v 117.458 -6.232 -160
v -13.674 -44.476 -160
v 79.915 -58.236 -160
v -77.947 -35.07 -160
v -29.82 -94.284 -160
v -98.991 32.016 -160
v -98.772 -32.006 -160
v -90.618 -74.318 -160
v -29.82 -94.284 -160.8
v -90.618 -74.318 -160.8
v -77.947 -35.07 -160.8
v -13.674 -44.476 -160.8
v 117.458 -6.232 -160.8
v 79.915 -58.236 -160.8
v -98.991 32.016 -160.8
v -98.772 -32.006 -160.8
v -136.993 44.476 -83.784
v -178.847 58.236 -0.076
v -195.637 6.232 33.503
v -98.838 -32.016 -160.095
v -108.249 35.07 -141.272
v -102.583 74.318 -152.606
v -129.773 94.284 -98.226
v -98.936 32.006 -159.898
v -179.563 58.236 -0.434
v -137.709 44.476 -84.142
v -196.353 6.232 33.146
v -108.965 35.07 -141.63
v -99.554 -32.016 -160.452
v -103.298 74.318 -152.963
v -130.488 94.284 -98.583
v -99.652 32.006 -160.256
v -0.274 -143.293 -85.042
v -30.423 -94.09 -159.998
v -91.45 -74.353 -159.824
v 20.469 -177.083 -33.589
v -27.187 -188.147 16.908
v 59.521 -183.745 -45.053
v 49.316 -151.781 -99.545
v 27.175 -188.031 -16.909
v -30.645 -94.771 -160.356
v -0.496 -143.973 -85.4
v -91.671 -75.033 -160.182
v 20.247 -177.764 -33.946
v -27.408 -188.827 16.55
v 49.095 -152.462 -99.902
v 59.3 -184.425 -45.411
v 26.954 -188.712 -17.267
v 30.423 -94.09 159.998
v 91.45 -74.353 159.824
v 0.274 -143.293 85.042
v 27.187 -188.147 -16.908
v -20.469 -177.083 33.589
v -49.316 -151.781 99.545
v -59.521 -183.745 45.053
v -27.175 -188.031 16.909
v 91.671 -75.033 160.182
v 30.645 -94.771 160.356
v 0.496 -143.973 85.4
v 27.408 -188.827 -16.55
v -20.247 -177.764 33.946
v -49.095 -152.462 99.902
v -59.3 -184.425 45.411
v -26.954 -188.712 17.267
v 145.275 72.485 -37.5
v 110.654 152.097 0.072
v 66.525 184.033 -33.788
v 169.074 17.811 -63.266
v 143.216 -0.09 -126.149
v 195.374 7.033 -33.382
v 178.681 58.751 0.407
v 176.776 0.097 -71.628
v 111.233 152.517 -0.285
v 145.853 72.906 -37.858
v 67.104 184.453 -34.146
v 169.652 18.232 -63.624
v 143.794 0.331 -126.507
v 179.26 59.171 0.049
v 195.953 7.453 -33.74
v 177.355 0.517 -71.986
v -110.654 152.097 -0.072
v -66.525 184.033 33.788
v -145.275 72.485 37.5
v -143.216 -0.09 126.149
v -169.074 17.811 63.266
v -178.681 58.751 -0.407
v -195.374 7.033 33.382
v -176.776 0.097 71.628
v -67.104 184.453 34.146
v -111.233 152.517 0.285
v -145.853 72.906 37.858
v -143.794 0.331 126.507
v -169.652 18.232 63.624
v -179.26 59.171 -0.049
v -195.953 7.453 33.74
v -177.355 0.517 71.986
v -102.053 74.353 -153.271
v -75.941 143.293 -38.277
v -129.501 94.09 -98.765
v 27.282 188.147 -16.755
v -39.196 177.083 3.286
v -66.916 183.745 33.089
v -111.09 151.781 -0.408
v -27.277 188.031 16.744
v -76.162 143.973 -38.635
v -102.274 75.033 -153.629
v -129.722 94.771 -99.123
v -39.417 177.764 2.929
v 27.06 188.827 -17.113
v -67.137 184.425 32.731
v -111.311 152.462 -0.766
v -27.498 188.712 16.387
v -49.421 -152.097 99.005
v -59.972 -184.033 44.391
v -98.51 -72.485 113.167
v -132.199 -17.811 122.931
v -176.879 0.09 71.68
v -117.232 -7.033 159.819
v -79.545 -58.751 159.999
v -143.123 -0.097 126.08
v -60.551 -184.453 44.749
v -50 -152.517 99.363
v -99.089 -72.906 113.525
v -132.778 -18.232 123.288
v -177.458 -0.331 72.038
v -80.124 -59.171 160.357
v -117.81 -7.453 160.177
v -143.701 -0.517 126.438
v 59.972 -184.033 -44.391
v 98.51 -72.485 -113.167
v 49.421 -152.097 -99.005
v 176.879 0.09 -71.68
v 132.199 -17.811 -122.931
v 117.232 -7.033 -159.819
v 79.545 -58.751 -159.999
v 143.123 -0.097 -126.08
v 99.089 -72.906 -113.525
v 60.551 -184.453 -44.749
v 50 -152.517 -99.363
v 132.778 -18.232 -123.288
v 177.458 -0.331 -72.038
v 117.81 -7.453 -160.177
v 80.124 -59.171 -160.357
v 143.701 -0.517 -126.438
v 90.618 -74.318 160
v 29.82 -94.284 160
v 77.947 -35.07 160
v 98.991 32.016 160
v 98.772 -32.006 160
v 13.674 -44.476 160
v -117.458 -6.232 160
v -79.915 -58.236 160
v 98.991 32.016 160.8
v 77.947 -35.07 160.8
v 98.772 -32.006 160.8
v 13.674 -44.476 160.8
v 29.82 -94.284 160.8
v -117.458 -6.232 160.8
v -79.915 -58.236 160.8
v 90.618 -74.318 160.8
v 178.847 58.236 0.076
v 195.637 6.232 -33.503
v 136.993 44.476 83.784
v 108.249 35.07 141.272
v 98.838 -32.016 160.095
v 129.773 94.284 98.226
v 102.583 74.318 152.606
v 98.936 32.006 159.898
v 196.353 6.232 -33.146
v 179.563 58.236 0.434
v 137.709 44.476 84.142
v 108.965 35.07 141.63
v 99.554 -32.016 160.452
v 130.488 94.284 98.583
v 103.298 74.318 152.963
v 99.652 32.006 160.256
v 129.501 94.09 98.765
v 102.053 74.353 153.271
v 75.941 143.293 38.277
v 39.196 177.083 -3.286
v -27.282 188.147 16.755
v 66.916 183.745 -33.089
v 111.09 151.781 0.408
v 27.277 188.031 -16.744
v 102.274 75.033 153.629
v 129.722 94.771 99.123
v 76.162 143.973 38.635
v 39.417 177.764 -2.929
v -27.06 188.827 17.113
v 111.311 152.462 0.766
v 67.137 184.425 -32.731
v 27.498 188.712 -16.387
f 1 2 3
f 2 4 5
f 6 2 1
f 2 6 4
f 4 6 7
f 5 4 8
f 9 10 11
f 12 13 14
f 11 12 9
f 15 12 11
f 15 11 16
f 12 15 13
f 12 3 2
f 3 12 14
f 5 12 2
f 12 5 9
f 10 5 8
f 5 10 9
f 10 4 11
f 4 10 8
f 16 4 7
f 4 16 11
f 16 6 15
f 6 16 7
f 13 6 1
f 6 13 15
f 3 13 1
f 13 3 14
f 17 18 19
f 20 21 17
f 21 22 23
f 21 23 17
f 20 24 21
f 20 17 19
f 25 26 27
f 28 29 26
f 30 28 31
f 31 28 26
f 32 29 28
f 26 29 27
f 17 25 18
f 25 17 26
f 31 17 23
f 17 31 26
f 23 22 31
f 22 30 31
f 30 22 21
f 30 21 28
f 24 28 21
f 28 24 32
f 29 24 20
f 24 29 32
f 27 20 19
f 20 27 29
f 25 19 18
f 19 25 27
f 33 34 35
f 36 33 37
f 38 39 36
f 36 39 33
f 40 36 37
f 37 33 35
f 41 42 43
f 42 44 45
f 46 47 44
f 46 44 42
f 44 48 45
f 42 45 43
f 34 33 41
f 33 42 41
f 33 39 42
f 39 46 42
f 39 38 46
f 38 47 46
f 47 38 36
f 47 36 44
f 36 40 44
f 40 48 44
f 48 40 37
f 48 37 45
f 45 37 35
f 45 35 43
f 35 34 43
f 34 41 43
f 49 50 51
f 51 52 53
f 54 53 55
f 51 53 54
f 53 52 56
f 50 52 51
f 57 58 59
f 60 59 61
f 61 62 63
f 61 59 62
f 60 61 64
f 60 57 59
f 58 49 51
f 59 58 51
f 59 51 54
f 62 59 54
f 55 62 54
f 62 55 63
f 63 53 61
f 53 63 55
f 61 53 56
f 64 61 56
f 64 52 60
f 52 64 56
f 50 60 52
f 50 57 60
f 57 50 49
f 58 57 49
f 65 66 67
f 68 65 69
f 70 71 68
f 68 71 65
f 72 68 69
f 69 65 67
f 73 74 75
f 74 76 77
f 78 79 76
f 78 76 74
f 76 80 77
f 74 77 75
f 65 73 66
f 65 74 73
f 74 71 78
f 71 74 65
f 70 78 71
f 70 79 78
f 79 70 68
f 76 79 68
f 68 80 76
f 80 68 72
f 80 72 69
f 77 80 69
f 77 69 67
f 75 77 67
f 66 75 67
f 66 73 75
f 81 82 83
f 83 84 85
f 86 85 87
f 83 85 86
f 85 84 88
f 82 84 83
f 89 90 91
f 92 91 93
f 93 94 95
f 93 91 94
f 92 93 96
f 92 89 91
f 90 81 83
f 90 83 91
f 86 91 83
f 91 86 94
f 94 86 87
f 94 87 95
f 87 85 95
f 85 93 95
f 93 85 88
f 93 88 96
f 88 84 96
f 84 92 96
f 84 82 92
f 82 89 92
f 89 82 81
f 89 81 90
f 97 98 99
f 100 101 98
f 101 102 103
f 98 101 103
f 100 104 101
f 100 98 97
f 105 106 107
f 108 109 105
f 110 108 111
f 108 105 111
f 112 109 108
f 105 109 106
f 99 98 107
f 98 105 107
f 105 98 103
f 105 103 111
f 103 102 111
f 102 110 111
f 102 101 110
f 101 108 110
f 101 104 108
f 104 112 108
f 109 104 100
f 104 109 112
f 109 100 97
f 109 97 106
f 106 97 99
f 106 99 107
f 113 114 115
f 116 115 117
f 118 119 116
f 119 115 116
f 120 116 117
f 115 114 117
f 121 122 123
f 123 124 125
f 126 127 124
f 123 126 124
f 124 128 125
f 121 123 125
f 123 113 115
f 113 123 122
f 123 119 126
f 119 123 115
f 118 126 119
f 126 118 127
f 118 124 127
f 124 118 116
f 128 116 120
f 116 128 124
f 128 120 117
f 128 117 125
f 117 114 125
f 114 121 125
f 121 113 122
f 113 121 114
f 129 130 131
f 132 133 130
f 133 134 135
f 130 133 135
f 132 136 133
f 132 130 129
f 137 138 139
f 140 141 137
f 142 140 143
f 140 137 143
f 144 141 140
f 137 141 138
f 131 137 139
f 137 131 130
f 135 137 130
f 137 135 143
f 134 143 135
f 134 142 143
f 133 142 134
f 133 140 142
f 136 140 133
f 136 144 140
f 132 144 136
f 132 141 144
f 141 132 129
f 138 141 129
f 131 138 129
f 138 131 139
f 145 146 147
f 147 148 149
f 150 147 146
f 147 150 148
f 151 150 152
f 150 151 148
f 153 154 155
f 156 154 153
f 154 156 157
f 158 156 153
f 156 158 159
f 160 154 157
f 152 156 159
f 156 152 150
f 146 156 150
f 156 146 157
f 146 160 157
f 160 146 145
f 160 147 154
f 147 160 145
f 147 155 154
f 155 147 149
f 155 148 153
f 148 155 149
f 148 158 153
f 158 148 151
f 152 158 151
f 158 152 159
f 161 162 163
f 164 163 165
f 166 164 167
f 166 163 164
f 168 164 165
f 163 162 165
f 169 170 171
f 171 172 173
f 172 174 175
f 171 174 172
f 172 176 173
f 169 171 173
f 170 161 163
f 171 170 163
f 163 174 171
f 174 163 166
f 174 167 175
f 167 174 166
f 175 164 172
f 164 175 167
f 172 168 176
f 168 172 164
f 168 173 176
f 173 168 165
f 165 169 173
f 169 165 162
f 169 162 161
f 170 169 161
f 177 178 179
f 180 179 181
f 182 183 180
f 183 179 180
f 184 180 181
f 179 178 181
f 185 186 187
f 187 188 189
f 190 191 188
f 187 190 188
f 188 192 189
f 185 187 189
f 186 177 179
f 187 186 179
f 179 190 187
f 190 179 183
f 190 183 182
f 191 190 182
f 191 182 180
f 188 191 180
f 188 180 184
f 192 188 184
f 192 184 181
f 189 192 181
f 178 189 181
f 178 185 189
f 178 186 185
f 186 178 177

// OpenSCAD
points = [
[-0.5255493,0.38292235],[0.46302083,-0.57102456],[0.58805667,-0.19014764],[0.17466639,0.23254393],[0.36718927,0.49715337],[0.04289149,0.73122149],[-0.10903722,0.52296546],[-0.20102132,0.61701658]

];
r=.0015;
r1=r*3/2;
vertex_holes = [r1,r1,r1,r1,r1];
edge_holes = [r,r,r,r,r];

midpoints = [ for (i=[0:len(points)-1]) (points[i]+points[(i+1)%len(points)])/2 ];

module shape()
{
	difference()
	{
		polygon( points );
	}

}

module facet(s,t)
{
	translate([0,0,s])
		linear_extrude(height=t)
			scale([s,s])
				shape();
}

module ball(r,t) {
multmatrix (m=[[-7.266504e-17,1.000000e+00,0.000000e+00,0.000000e+00],[1.000000e+00,7.266504e-17,0.000000e+00,0.000000e+00],[-0.000000e+00,0.000000e+00,-1.000000e+00,0.000000e+00],[0, 0, 0, 1]]) {rotate([0,0,2*72])facet(r,t);};
multmatrix (m=[[6.680457e-17,-4.472136e-01,-8.944272e-01,0.000000e+00],[-1.000000e+00,7.266504e-17,-1.110223e-16,0.000000e+00],[1.146443e-16,8.944272e-01,-4.472136e-01,0.000000e+00],[0, 0, 0, 1]]) {rotate([0,0,2*72])facet(r,t);};
multmatrix (m=[[9.510565e-01,-1.381966e-01,-2.763932e-01,0.000000e+00],[-3.090170e-01,-4.253254e-01,-8.506508e-01,0.000000e+00],[5.551115e-17,8.944272e-01,-4.472136e-01,0.000000e+00],[0, 0, 0, 1]]) {rotate([0,0,4*72])facet(r,t);};
multmatrix (m=[[8.506508e-01,4.472136e-01,2.763932e-01,0.000000e+00],[5.551115e-17,5.257311e-01,-8.506508e-01,0.000000e+00],[-5.257311e-01,7.236068e-01,4.472136e-01,0.000000e+00],[0, 0, 0, 1]]) {rotate([0,0,2*72])facet(r,t);};
multmatrix (m=[[-5.877853e-01,3.618034e-01,7.236068e-01,0.000000e+00],[8.090170e-01,2.628656e-01,5.257311e-01,0.000000e+00],[-0.000000e+00,8.944272e-01,-4.472136e-01,0.000000e+00],[0, 0, 0, 1]]) {rotate([0,0,1*72])facet(r,t);};
multmatrix (m=[[-2.628656e-01,6.381966e-01,-7.236068e-01,0.000000e+00],[-8.090170e-01,2.628656e-01,5.257311e-01,0.000000e+00],[5.257311e-01,7.236068e-01,4.472136e-01,0.000000e+00],[0, 0, 0, 1]]) {rotate([0,0,3*72])facet(r,t);};
multmatrix (m=[[-9.510565e-01,-1.381966e-01,-2.763932e-01,0.000000e+00],[-3.090170e-01,4.253254e-01,8.506508e-01,0.000000e+00],[-4.163336e-17,8.944272e-01,-4.472136e-01,0.000000e+00],[0, 0, 0, 1]]) {rotate([0,0,0*72])facet(r,t);};
multmatrix (m=[[2.628656e-01,6.381966e-01,-7.236068e-01,0.000000e+00],[-8.090170e-01,-2.628656e-01,-5.257311e-01,0.000000e+00],[-5.257311e-01,7.236068e-01,4.472136e-01,0.000000e+00],[0, 0, 0, 1]]) {rotate([0,0,1*72])facet(r,t);};
multmatrix (m=[[5.877853e-01,3.618034e-01,7.236068e-01,0.000000e+00],[8.090170e-01,-2.628656e-01,-5.257311e-01,0.000000e+00],[-1.665335e-16,8.944272e-01,-4.472136e-01,0.000000e+00],[0, 0, 0, 1]]) {rotate([0,0,3*72])facet(r,t);};
multmatrix (m=[[9.510565e-01,-3.090170e-01,0.000000e+00,0.000000e+00],[3.090170e-01,9.510565e-01,0.000000e+00,0.000000e+00],[-0.000000e+00,-0.000000e+00,1.000000e+00,0.000000e+00],[0, 0, 0, 1]]) {rotate([0,0,3*72])facet(r,t);};
multmatrix (m=[[4.253254e-01,1.381966e-01,8.944272e-01,0.000000e+00],[-3.090170e-01,9.510565e-01,1.110223e-16,0.000000e+00],[-8.506508e-01,-2.763932e-01,4.472136e-01,0.000000e+00],[0, 0, 0, 1]]) {rotate([0,0,1*72])facet(r,t);};
multmatrix (m=[[-6.881910e-01,-6.708204e-01,2.763932e-01,0.000000e+00],[5.000000e-01,-1.624598e-01,8.506508e-01,0.000000e+00],[-5.257311e-01,7.236068e-01,4.472136e-01,0.000000e+00],[0, 0, 0, 1]]) {rotate([0,0,3*72])facet(r,t);};
}
ball(160, .8);
